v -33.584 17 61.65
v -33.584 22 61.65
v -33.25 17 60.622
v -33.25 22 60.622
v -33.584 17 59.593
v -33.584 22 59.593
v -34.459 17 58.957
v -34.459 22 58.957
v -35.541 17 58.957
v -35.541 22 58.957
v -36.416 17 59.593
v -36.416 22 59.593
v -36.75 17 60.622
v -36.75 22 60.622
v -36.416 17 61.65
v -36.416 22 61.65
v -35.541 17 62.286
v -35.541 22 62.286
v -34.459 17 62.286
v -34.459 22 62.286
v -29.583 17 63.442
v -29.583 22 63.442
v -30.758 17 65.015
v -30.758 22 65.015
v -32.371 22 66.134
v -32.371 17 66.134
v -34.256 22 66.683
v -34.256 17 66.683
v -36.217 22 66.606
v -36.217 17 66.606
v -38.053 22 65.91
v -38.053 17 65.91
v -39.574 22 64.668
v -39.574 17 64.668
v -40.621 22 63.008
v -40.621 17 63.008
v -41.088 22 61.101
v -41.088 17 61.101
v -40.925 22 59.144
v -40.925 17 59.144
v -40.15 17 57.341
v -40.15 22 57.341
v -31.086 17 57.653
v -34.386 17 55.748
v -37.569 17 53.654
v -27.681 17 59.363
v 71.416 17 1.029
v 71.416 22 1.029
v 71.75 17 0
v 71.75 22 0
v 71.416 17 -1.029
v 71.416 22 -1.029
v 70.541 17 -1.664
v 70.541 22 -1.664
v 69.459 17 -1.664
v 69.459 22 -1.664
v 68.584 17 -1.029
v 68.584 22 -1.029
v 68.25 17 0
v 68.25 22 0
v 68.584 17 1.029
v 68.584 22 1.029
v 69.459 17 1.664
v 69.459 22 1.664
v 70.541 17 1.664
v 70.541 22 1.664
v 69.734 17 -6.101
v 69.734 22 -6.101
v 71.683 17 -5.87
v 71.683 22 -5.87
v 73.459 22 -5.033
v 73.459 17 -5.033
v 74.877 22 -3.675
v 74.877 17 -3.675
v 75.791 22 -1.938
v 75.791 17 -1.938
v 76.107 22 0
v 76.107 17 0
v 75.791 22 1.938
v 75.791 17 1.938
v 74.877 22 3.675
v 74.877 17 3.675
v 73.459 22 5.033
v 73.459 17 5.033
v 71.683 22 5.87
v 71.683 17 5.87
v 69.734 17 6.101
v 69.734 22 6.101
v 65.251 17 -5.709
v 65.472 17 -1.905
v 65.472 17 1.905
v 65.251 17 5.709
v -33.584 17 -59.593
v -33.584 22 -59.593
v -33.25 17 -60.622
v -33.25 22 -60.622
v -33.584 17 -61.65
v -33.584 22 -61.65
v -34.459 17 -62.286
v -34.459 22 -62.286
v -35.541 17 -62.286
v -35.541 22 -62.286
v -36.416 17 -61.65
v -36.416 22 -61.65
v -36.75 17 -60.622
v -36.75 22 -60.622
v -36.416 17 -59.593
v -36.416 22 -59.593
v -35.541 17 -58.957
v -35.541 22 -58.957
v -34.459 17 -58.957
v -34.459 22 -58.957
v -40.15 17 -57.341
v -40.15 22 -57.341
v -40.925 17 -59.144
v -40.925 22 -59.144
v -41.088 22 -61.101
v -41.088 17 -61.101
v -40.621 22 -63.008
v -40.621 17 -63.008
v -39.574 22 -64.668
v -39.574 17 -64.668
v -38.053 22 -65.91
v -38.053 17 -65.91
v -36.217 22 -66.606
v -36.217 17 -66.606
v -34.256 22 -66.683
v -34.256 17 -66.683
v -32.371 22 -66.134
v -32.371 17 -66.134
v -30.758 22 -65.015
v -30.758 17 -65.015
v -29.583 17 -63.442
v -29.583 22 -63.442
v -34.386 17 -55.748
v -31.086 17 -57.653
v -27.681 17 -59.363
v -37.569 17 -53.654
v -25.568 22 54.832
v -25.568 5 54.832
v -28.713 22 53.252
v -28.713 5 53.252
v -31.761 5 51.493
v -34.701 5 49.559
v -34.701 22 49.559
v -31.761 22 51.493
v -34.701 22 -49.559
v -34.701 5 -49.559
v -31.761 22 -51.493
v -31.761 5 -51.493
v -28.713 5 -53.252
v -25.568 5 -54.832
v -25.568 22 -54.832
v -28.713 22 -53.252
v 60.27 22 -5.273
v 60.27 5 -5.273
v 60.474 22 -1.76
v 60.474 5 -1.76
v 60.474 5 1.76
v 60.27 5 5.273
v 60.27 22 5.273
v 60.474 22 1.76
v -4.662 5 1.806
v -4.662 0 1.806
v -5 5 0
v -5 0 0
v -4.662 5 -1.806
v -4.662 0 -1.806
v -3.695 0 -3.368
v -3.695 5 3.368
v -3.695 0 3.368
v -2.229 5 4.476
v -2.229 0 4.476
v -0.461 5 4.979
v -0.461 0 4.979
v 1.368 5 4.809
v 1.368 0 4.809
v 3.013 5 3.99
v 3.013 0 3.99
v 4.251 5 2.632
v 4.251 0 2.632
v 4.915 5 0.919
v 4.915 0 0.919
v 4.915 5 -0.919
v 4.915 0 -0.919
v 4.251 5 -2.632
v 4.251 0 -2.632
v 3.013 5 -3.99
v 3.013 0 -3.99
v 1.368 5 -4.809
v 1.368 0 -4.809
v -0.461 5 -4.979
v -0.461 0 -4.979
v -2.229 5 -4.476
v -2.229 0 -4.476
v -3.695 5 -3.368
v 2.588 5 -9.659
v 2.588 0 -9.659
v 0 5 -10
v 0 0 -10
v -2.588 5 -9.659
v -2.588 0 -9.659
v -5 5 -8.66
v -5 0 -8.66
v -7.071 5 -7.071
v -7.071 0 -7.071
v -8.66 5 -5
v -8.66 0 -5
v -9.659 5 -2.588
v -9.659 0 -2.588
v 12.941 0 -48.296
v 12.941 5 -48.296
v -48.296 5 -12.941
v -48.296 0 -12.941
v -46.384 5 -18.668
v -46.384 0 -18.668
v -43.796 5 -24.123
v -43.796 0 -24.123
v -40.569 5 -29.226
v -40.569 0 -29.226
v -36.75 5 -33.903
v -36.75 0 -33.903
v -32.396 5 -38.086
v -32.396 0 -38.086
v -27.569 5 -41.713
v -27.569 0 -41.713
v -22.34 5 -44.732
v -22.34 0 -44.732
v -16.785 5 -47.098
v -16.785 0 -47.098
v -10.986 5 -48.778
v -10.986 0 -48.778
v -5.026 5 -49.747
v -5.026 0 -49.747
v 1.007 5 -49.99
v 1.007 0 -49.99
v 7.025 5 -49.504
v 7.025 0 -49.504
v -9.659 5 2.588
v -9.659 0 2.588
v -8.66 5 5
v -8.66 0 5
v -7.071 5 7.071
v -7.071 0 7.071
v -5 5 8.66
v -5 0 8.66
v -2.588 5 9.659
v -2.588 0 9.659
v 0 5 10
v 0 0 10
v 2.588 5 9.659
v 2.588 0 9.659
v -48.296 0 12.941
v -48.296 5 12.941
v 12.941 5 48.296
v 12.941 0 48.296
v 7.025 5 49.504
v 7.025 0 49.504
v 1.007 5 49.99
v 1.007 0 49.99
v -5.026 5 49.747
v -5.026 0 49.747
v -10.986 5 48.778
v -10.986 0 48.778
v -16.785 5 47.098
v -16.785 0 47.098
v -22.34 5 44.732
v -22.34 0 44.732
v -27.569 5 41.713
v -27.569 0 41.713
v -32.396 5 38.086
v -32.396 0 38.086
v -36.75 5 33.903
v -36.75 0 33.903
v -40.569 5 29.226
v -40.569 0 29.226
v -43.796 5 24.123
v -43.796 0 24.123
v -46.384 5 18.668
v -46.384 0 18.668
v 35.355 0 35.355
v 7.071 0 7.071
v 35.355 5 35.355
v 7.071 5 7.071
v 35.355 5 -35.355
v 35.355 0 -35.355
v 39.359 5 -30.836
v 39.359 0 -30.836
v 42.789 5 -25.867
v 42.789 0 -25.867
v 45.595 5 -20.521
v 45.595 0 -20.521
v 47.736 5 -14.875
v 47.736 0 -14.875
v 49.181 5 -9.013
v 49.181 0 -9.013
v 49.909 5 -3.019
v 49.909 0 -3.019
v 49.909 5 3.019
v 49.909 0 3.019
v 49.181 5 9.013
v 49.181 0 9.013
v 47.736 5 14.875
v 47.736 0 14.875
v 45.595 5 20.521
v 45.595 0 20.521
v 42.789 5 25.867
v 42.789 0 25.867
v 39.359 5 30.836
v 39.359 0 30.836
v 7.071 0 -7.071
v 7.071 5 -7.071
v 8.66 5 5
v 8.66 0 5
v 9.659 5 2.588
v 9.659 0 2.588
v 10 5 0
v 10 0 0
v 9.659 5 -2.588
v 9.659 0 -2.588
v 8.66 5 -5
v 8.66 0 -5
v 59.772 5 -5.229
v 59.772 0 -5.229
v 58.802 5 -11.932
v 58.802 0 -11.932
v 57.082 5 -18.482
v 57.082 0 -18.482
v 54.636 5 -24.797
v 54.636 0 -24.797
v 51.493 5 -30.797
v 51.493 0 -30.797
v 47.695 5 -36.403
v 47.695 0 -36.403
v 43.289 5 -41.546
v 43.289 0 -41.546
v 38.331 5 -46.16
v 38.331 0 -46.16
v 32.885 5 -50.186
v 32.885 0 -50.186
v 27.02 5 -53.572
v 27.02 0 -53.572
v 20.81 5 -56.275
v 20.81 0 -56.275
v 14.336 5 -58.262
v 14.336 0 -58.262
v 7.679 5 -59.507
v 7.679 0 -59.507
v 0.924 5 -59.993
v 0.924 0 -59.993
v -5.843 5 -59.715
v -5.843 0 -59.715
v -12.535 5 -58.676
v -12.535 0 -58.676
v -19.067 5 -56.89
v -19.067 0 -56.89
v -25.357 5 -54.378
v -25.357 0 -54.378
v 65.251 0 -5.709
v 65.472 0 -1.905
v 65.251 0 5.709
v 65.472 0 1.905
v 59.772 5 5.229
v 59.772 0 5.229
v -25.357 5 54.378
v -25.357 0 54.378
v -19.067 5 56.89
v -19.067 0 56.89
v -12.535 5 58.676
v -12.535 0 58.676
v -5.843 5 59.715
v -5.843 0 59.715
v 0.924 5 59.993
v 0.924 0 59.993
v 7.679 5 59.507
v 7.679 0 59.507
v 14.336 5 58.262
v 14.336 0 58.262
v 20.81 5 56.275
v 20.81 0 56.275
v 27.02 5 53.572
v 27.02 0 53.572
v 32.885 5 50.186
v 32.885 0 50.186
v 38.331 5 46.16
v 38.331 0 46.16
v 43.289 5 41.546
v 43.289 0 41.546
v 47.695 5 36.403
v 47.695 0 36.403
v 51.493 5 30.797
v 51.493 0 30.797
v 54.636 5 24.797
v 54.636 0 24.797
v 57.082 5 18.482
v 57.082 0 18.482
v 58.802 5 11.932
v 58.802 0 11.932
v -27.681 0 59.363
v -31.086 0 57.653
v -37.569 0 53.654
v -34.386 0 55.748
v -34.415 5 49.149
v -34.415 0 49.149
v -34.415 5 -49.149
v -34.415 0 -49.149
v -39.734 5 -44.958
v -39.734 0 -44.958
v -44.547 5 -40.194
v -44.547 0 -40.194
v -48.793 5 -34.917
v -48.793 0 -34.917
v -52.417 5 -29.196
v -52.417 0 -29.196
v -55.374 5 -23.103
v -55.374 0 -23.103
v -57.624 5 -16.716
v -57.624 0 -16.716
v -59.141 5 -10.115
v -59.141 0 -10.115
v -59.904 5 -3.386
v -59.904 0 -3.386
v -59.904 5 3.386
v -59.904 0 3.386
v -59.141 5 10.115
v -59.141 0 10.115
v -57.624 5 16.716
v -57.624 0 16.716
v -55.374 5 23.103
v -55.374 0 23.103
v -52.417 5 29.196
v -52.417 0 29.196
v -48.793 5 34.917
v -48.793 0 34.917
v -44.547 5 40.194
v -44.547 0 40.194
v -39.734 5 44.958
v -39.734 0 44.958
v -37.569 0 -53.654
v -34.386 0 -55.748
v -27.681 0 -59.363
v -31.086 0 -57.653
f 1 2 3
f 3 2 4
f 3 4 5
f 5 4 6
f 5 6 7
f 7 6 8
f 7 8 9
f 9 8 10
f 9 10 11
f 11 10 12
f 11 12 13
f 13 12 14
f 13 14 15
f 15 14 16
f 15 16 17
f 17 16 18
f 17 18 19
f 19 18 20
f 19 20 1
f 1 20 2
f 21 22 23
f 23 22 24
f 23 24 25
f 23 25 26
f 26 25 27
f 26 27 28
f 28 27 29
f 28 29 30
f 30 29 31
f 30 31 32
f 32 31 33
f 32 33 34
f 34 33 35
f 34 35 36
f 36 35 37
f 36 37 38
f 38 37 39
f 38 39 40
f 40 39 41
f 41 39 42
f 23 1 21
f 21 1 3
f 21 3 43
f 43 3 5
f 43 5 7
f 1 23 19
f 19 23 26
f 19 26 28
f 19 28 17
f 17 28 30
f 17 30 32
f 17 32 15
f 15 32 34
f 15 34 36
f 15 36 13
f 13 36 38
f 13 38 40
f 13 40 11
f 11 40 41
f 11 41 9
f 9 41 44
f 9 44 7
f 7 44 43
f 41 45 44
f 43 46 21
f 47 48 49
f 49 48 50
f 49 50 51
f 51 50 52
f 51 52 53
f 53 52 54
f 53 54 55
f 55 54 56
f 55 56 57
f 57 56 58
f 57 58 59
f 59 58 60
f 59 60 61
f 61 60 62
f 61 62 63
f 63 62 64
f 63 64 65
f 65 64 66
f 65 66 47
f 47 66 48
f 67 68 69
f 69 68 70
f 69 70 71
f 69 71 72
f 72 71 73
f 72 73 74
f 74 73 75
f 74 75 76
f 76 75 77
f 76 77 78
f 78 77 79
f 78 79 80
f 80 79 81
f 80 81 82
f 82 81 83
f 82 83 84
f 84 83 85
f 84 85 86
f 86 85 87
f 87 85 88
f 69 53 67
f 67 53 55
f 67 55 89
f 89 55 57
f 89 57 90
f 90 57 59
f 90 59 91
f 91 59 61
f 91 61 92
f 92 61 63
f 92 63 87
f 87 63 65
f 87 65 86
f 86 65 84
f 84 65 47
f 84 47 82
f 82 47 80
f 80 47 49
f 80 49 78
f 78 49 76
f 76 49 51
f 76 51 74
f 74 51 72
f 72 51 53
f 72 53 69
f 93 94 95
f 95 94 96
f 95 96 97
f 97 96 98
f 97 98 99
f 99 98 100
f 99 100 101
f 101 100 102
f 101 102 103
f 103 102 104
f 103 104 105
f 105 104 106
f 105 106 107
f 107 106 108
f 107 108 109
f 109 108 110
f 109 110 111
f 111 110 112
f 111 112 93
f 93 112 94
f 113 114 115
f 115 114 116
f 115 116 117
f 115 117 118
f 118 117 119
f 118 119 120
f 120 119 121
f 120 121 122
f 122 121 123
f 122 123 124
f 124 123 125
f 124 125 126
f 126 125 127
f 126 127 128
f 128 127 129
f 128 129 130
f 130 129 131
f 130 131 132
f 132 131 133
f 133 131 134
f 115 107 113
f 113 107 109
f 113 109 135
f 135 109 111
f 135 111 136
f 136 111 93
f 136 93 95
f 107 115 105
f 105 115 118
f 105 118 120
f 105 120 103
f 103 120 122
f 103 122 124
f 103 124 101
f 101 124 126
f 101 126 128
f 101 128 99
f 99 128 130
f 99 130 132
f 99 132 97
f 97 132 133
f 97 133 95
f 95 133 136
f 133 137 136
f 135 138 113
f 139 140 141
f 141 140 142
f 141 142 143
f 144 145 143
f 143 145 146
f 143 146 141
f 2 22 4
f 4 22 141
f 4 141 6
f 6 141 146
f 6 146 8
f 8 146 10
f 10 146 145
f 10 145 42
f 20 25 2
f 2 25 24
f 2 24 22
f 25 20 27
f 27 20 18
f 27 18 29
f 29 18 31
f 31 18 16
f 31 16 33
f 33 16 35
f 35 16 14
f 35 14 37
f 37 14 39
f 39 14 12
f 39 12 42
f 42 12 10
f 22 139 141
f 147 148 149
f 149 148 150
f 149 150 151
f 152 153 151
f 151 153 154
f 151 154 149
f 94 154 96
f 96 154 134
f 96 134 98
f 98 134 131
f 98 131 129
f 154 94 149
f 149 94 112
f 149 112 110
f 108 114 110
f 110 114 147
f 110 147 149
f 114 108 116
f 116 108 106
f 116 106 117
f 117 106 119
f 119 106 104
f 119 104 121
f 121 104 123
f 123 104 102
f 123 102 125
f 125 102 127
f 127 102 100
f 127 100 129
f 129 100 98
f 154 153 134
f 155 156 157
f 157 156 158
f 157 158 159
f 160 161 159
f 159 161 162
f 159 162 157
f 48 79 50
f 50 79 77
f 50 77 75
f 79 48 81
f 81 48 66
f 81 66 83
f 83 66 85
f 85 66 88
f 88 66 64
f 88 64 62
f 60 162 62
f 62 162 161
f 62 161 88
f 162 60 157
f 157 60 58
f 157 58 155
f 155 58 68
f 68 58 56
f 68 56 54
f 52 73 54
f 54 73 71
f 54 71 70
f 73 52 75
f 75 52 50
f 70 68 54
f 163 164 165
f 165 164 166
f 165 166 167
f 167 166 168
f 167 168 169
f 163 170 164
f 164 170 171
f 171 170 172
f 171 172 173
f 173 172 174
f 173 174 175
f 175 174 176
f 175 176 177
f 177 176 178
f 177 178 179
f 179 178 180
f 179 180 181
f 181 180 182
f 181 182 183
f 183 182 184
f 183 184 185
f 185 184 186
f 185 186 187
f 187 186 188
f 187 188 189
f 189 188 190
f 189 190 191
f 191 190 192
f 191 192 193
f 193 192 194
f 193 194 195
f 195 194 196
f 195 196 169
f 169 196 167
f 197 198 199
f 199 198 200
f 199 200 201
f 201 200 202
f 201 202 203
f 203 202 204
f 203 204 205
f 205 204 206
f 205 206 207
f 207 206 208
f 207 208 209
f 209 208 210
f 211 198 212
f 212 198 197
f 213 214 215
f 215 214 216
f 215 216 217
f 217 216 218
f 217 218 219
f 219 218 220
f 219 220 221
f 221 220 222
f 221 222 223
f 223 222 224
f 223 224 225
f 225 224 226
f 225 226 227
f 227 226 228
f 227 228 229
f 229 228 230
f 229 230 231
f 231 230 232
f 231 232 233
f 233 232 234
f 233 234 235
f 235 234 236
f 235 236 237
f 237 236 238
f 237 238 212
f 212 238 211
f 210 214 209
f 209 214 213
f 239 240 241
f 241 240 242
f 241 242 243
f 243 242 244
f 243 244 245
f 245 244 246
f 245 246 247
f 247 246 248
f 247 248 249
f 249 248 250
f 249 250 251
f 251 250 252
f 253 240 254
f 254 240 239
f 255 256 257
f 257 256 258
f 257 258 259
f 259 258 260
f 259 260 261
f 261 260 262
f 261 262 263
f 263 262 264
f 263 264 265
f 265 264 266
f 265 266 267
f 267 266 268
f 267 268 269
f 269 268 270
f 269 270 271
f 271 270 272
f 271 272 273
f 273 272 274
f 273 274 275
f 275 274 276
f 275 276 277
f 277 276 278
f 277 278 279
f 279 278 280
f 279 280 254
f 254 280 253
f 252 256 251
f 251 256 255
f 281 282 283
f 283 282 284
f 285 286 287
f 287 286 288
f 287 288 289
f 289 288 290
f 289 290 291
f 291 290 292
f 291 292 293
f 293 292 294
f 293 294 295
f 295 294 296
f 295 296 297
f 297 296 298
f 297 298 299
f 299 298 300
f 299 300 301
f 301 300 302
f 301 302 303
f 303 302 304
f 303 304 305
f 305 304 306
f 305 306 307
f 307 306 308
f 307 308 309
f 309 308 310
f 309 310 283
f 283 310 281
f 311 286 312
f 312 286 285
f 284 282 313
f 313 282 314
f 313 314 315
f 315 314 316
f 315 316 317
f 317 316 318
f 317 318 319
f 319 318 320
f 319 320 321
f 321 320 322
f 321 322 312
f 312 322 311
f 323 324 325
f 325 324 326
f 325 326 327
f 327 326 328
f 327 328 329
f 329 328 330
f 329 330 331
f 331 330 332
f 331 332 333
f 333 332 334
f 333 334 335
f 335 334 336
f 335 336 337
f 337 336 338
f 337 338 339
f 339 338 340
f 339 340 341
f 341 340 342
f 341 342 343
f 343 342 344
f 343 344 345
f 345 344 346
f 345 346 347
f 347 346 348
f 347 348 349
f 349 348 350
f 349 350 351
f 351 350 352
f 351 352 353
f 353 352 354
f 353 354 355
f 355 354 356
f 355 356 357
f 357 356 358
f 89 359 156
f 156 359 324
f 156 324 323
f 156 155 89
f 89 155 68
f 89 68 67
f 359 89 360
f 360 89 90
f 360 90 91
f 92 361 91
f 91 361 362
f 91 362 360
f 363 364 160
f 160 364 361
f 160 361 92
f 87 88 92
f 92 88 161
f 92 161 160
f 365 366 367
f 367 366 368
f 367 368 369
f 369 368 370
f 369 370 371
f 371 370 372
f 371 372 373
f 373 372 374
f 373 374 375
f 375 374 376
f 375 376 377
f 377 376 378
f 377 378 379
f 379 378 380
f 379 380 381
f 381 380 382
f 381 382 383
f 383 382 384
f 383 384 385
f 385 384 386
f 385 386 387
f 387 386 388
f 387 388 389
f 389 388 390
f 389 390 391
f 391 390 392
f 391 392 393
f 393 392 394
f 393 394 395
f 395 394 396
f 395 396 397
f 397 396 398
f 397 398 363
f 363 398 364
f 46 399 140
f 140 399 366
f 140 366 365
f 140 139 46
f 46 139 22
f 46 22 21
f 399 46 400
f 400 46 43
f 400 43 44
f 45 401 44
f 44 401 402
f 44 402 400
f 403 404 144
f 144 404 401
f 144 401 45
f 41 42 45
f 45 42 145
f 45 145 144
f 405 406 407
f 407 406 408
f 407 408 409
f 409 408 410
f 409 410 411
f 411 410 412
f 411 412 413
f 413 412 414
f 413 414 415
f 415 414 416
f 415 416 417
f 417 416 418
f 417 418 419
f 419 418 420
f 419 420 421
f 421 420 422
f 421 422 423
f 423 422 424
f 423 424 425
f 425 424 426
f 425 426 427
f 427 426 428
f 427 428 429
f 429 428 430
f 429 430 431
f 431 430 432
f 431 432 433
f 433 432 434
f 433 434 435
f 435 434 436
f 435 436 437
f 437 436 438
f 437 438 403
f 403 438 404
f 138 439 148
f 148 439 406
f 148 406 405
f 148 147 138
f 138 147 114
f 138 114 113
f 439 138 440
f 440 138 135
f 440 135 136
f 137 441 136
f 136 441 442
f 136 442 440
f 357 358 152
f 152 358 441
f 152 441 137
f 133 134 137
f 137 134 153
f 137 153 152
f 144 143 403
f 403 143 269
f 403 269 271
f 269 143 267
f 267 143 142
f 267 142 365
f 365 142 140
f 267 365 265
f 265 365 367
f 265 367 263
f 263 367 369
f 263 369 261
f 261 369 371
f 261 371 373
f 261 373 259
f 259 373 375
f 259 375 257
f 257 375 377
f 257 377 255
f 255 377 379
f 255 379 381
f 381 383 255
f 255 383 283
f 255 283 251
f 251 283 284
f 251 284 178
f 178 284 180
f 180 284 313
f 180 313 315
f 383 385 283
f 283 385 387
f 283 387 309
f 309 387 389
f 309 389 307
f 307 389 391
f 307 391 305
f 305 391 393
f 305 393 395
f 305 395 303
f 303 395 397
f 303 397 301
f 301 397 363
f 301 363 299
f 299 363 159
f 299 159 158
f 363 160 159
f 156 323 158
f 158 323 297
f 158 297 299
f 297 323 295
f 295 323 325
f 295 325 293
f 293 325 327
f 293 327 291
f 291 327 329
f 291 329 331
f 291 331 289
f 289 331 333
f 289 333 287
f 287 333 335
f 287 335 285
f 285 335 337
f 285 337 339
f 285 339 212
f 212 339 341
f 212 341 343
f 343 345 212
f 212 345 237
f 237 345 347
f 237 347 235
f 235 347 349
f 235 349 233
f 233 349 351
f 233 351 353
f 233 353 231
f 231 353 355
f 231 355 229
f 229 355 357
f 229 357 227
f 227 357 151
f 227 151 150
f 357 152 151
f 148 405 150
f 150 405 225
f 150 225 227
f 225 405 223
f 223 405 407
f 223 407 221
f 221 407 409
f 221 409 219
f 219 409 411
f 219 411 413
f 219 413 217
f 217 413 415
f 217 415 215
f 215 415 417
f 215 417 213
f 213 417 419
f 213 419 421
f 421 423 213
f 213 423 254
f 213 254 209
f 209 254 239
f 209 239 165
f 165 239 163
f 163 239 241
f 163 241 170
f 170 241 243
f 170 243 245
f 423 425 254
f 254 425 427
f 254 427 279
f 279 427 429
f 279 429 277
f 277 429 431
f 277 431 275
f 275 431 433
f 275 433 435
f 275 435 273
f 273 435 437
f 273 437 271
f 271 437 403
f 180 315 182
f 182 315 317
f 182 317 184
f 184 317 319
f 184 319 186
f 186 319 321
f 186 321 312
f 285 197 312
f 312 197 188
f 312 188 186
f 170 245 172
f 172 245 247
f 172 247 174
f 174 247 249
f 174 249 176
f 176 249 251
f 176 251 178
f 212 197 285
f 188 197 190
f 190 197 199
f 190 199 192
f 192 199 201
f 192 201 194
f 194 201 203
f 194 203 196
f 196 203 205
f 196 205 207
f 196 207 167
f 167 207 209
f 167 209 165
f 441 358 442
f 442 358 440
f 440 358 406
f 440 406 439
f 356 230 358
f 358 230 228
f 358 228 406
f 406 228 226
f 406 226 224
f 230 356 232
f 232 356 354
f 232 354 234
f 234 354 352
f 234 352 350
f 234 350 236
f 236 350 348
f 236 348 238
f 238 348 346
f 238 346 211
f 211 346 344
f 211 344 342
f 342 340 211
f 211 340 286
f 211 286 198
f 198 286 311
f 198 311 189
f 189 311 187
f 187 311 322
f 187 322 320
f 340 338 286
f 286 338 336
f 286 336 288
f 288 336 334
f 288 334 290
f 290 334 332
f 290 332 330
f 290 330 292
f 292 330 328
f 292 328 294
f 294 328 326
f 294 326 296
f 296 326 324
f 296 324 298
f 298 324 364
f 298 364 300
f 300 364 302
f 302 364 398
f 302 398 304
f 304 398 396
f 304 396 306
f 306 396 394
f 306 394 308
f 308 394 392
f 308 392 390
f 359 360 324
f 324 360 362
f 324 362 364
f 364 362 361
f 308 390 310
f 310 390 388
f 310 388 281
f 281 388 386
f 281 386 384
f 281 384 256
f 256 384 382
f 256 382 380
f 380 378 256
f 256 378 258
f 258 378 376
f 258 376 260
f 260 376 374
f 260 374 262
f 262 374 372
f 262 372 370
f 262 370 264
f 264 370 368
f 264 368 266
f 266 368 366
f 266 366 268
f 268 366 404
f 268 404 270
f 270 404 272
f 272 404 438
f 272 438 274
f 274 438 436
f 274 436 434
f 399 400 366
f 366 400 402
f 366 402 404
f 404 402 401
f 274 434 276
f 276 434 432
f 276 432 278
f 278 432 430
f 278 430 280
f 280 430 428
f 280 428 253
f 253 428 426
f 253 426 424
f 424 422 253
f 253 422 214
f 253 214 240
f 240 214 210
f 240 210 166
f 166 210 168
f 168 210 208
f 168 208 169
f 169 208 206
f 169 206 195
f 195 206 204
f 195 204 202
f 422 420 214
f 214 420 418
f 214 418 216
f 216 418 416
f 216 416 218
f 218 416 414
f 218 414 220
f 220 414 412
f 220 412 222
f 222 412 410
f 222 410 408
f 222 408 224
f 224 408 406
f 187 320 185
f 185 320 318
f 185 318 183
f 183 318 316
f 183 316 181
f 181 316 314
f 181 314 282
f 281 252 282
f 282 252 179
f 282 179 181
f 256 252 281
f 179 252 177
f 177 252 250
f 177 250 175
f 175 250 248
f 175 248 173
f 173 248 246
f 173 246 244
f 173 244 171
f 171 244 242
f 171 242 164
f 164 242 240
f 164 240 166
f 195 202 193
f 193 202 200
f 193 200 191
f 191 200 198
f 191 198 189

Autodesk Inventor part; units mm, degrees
ref_plane "YZ Plane" through (0, 0, 0) normal (1, 0, 0) x (0, 1, 0)
ref_plane "XZ Plane" through (0, 0, 0) normal (0, 1, 0) x (-1, 0, 0)
ref_plane "XY Plane" through (0, 0, 0) normal (0, 0, 1) x (1, 0, 0)
sketch "Sketch1" plane through (0, 0, 0) normal (0, 1, 0) x (-1, 0, 0)
  line L0 (0, 0) -> (48.2963, -12.941)
  line L1 (0, 0) -> (50, 0) construction
  line L2 (0, 0) -> (48.2963, 12.941)
  line L3 (0, 0) -> (50, 0) construction
  arc A0 (48.2963, -12.941) -> (48.2963, 12.941) centre (0, 0) ccw
  arc A1 (-12.941, 48.2963) -> (-35.3553, 35.3553) centre (0, 0) ccw
  line L4 (0, 0) -> (-12.941, 48.2963)
  line L5 (0, 0) -> (-35.3553, 35.3553)
  arc A2 (-35.3553, -35.3553) -> (-12.941, -48.2963) centre (0, 0) ccw
  line L6 (0, 0) -> (-35.3553, -35.3553)
  line L7 (0, 0) -> (-12.941, -48.2963)
  circle A3 centre (0, 0) radius 5
  circle A4 centre (0, 0) radius 10
  line L8 (0, 0) -> (34.7014, -49.5587)
  line L9 (0, 0) -> (60.5, 0) construction
  line L10 (0, 0) -> (25.5684, -54.8316)
  line L11 (0, 0) -> (60.5, 0) construction
  line L12 (25.5684, -54.8316) -> (27.6815, -59.3632)
  line L13 (34.7014, -49.5587) -> (37.5693, -53.6545)
  arc A5 (27.6815, -59.3632) -> (37.5693, -53.6545) centre (0, 0) ccw
  circle A6 centre (0, 0) radius 50
  circle A7 centre (0, 0) radius 60
  line L14 (0, 0) -> (25.5684, 54.8316)
  line L15 (25.5684, 54.8316) -> (27.6815, 59.3632)
  arc A8 (37.5693, 53.6545) -> (27.6815, 59.3632) centre (0, 0) ccw
  line L16 (0, 0) -> (34.7014, 49.5587)
  line L17 (34.7014, 49.5587) -> (37.5693, 53.6545)
  line L18 (0, 0) -> (-60.2698, -5.2729)
  line L19 (-60.2698, -5.2729) -> (-65.2508, -5.7087)
  arc A9 (-65.2508, 5.7087) -> (-65.2508, -5.7087) centre (0, 0) ccw
  line L20 (0, 0) -> (-60.2698, 5.2729)
  line L21 (-60.2698, 5.2729) -> (-65.2508, 5.7087)
  point P0 (9.6593, -2.5882)
  point P1 (9.6593, 2.5882)
  point P2 (-2.5882, 9.6593)
  point P3 (-7.0711, 7.0711)
  point P4 (-7.0711, -7.0711)
  point P5 (-2.5882, -9.6593)
  point P6 (4.2262, -9.0631)
  point P7 (5.7358, -8.1915)
  point P8 (-35.3553, -35.3553)
  point P9 (-35.3553, 35.3553)
  point P10 (-12.941, 48.2963)
  point P11 (-12.941, -48.2963)
  point P12 (25.3571, -54.3785)
  point P13 (34.4146, -49.1491)
  point P14 (34.4146, 49.1491)
  point P15 (25.3571, 54.3785)
  point P16 (-59.7717, 5.2293)
  point P17 (-59.7717, -5.2293)
  dimension "d0" = 50
  dimension "d1" = 15
  dimension "d2" = 50
  dimension "d3" = 15
  dimension "d4" = 50
  dimension "d7" = 360
  dimension "d9" = 10
  dimension "d10" = 20
  dimension "d11" = 60.5
  dimension "d12" = 55
  dimension "d13" = 60.5
  dimension "d14" = 65
  dimension "d16" = 5
  dimension "d17" = 5
  dimension "d18" = 65.5
  dimension "d25" = 100
  dimension "d26" = 120
  dimension "d29" = 360
extrude "Extrusion2" add sketch "Sketch1" along normal blind 5 contours A3 L2 A4 L0 | L0 A4 L8 A3 | A3 L16 A4 L2 | A3 L5 A4 L4 | L4 A4 L14 A3 | A3 L20 A4 L5 | A3 L7 A4 L6 | L6 A4 L18 A3 | A3 L10 A4 L7 | L8 A4 L10 A3 | L14 A4 L16 A3 | L18 A4 L20 A3 | A4 L2 A0 L0 | A4 L5 A1 L4 | A4 L7 A2 L6 | A0 A6 L16 A7 L8 | A1 A6 L20 A7 L14 | A2 A6 L10 A7 L18 | L8 A7 L10 A6 | L14 A7 L16 A6 | L18 A7 L20 A6 | L8 L13 A5 L12 L10 A7 | L14 L15 A8 L17 L16 A7 | L18 L19 A9 L21 L20 A7
sketch "Sketch3" plane through (0, 5, 0) normal (0, 1, 0) x (1, 0, 0)
  circle A0 centre (0, 0) radius 5 projected
  arc A1 (65.2508, -5.7087) -> (65.2508, 5.7087) centre (0, 0) ccw projected
  arc A2 (65.2508, -5.7087) -> (65.2508, 5.7087) centre (0, 0) ccw
  line L0 (65.2508, 5.7087) -> (60.2698, 5.2729)
  line L1 (65.2508, 5.7087) -> (59.7717, 5.2293) projected
  line L2 (65.2508, -5.7087) -> (60.2698, -5.2729)
  line L3 (59.7717, -5.2293) -> (65.2508, -5.7087) projected
  arc A3 (60.2698, -5.2729) -> (60.2698, 5.2729) centre (0, 0) ccw
  arc A4 (-27.6815, 59.3632) -> (-37.5693, 53.6545) centre (0, 0) ccw
  line L4 (-37.5693, 53.6545) -> (-34.7014, 49.5587)
  arc A5 (-25.5684, 54.8316) -> (-34.7014, 49.5587) centre (0, 0) ccw
  line L5 (-27.6815, 59.3632) -> (-25.5684, 54.8316)
  arc A6 (-37.5693, -53.6545) -> (-27.6815, -59.3632) centre (0, 0) ccw
  line L6 (-27.6815, -59.3632) -> (-25.5684, -54.8316)
  arc A7 (-34.7014, -49.5587) -> (-25.5684, -54.8316) centre (0, 0) ccw
  line L7 (-37.5693, -53.6545) -> (-34.7014, -49.5587)
  dimension "d40" = 5
  dimension "d41" = 5
  dimension "d42" = 60.5
  dimension "d45" = 360
extrude "Extrusion3" add sketch "Sketch3" along normal blind 17 contours L2 A3 L0 A1 | L5 A5 L4 A4 | L7 A7 L6 A6
sketch "Sketch4" plane through (0, 22, 0) normal (0, 1, 0) x (1, 0, 0)
  arc A0 (-27.6815, 59.3632) -> (-37.5693, 53.6545) centre (0, 0) ccw projected
  arc A1 (-27.6815, 59.3632) -> (-37.5693, 53.6545) centre (0, 0) ccw
  line L0 (-27.6815, 59.3632) -> (-29.5833, 63.4415)
  line L1 (-27.6815, 59.3632) -> (-23.1815, 59.3632) construction
  line L2 (-37.5693, 53.6545) -> (-40.1504, 57.3406)
  line L3 (-37.5693, 53.6545) -> (-33.0693, 53.6545) construction
  circle A2 centre (-35, 60.6218) radius 1.75
  arc A3 (-29.5833, 63.4415) -> (-40.1504, 57.3406) centre (-35, 60.6218) ccw
  arc A4 (-40.1504, -57.3406) -> (-29.5833, -63.4415) centre (-35, -60.6218) ccw
  circle A5 centre (-35, -60.6218) radius 1.75
  line L4 (-37.5693, -53.6545) -> (-40.1504, -57.3406)
  line L5 (-27.6815, -59.3632) -> (-29.5833, -63.4415)
  arc A6 (-37.5693, -53.6545) -> (-27.6815, -59.3632) centre (0, 0) ccw
  arc A7 (69.7336, -6.1009) -> (69.7336, 6.1009) centre (70, 0) ccw
  circle A8 centre (70, 0) radius 1.75
  line L6 (65.2508, -5.7087) -> (69.7336, -6.1009)
  line L7 (65.2508, 5.7087) -> (69.7336, 6.1009)
  arc A9 (65.2508, -5.7087) -> (65.2508, 5.7087) centre (0, 0) ccw
  point P0 (0, 0)
  dimension "d50" = 4.5
  dimension "d51" = 115
  dimension "d52" = 4.5
  dimension "d53" = 125
  dimension "d63" = 3.5
  dimension "d66" = 360
  dimension "d70" = 70
extrude "Extrusion5" add sketch "Sketch4" against normal blind 5
properties part number "MechSwitch_DielecTop"
